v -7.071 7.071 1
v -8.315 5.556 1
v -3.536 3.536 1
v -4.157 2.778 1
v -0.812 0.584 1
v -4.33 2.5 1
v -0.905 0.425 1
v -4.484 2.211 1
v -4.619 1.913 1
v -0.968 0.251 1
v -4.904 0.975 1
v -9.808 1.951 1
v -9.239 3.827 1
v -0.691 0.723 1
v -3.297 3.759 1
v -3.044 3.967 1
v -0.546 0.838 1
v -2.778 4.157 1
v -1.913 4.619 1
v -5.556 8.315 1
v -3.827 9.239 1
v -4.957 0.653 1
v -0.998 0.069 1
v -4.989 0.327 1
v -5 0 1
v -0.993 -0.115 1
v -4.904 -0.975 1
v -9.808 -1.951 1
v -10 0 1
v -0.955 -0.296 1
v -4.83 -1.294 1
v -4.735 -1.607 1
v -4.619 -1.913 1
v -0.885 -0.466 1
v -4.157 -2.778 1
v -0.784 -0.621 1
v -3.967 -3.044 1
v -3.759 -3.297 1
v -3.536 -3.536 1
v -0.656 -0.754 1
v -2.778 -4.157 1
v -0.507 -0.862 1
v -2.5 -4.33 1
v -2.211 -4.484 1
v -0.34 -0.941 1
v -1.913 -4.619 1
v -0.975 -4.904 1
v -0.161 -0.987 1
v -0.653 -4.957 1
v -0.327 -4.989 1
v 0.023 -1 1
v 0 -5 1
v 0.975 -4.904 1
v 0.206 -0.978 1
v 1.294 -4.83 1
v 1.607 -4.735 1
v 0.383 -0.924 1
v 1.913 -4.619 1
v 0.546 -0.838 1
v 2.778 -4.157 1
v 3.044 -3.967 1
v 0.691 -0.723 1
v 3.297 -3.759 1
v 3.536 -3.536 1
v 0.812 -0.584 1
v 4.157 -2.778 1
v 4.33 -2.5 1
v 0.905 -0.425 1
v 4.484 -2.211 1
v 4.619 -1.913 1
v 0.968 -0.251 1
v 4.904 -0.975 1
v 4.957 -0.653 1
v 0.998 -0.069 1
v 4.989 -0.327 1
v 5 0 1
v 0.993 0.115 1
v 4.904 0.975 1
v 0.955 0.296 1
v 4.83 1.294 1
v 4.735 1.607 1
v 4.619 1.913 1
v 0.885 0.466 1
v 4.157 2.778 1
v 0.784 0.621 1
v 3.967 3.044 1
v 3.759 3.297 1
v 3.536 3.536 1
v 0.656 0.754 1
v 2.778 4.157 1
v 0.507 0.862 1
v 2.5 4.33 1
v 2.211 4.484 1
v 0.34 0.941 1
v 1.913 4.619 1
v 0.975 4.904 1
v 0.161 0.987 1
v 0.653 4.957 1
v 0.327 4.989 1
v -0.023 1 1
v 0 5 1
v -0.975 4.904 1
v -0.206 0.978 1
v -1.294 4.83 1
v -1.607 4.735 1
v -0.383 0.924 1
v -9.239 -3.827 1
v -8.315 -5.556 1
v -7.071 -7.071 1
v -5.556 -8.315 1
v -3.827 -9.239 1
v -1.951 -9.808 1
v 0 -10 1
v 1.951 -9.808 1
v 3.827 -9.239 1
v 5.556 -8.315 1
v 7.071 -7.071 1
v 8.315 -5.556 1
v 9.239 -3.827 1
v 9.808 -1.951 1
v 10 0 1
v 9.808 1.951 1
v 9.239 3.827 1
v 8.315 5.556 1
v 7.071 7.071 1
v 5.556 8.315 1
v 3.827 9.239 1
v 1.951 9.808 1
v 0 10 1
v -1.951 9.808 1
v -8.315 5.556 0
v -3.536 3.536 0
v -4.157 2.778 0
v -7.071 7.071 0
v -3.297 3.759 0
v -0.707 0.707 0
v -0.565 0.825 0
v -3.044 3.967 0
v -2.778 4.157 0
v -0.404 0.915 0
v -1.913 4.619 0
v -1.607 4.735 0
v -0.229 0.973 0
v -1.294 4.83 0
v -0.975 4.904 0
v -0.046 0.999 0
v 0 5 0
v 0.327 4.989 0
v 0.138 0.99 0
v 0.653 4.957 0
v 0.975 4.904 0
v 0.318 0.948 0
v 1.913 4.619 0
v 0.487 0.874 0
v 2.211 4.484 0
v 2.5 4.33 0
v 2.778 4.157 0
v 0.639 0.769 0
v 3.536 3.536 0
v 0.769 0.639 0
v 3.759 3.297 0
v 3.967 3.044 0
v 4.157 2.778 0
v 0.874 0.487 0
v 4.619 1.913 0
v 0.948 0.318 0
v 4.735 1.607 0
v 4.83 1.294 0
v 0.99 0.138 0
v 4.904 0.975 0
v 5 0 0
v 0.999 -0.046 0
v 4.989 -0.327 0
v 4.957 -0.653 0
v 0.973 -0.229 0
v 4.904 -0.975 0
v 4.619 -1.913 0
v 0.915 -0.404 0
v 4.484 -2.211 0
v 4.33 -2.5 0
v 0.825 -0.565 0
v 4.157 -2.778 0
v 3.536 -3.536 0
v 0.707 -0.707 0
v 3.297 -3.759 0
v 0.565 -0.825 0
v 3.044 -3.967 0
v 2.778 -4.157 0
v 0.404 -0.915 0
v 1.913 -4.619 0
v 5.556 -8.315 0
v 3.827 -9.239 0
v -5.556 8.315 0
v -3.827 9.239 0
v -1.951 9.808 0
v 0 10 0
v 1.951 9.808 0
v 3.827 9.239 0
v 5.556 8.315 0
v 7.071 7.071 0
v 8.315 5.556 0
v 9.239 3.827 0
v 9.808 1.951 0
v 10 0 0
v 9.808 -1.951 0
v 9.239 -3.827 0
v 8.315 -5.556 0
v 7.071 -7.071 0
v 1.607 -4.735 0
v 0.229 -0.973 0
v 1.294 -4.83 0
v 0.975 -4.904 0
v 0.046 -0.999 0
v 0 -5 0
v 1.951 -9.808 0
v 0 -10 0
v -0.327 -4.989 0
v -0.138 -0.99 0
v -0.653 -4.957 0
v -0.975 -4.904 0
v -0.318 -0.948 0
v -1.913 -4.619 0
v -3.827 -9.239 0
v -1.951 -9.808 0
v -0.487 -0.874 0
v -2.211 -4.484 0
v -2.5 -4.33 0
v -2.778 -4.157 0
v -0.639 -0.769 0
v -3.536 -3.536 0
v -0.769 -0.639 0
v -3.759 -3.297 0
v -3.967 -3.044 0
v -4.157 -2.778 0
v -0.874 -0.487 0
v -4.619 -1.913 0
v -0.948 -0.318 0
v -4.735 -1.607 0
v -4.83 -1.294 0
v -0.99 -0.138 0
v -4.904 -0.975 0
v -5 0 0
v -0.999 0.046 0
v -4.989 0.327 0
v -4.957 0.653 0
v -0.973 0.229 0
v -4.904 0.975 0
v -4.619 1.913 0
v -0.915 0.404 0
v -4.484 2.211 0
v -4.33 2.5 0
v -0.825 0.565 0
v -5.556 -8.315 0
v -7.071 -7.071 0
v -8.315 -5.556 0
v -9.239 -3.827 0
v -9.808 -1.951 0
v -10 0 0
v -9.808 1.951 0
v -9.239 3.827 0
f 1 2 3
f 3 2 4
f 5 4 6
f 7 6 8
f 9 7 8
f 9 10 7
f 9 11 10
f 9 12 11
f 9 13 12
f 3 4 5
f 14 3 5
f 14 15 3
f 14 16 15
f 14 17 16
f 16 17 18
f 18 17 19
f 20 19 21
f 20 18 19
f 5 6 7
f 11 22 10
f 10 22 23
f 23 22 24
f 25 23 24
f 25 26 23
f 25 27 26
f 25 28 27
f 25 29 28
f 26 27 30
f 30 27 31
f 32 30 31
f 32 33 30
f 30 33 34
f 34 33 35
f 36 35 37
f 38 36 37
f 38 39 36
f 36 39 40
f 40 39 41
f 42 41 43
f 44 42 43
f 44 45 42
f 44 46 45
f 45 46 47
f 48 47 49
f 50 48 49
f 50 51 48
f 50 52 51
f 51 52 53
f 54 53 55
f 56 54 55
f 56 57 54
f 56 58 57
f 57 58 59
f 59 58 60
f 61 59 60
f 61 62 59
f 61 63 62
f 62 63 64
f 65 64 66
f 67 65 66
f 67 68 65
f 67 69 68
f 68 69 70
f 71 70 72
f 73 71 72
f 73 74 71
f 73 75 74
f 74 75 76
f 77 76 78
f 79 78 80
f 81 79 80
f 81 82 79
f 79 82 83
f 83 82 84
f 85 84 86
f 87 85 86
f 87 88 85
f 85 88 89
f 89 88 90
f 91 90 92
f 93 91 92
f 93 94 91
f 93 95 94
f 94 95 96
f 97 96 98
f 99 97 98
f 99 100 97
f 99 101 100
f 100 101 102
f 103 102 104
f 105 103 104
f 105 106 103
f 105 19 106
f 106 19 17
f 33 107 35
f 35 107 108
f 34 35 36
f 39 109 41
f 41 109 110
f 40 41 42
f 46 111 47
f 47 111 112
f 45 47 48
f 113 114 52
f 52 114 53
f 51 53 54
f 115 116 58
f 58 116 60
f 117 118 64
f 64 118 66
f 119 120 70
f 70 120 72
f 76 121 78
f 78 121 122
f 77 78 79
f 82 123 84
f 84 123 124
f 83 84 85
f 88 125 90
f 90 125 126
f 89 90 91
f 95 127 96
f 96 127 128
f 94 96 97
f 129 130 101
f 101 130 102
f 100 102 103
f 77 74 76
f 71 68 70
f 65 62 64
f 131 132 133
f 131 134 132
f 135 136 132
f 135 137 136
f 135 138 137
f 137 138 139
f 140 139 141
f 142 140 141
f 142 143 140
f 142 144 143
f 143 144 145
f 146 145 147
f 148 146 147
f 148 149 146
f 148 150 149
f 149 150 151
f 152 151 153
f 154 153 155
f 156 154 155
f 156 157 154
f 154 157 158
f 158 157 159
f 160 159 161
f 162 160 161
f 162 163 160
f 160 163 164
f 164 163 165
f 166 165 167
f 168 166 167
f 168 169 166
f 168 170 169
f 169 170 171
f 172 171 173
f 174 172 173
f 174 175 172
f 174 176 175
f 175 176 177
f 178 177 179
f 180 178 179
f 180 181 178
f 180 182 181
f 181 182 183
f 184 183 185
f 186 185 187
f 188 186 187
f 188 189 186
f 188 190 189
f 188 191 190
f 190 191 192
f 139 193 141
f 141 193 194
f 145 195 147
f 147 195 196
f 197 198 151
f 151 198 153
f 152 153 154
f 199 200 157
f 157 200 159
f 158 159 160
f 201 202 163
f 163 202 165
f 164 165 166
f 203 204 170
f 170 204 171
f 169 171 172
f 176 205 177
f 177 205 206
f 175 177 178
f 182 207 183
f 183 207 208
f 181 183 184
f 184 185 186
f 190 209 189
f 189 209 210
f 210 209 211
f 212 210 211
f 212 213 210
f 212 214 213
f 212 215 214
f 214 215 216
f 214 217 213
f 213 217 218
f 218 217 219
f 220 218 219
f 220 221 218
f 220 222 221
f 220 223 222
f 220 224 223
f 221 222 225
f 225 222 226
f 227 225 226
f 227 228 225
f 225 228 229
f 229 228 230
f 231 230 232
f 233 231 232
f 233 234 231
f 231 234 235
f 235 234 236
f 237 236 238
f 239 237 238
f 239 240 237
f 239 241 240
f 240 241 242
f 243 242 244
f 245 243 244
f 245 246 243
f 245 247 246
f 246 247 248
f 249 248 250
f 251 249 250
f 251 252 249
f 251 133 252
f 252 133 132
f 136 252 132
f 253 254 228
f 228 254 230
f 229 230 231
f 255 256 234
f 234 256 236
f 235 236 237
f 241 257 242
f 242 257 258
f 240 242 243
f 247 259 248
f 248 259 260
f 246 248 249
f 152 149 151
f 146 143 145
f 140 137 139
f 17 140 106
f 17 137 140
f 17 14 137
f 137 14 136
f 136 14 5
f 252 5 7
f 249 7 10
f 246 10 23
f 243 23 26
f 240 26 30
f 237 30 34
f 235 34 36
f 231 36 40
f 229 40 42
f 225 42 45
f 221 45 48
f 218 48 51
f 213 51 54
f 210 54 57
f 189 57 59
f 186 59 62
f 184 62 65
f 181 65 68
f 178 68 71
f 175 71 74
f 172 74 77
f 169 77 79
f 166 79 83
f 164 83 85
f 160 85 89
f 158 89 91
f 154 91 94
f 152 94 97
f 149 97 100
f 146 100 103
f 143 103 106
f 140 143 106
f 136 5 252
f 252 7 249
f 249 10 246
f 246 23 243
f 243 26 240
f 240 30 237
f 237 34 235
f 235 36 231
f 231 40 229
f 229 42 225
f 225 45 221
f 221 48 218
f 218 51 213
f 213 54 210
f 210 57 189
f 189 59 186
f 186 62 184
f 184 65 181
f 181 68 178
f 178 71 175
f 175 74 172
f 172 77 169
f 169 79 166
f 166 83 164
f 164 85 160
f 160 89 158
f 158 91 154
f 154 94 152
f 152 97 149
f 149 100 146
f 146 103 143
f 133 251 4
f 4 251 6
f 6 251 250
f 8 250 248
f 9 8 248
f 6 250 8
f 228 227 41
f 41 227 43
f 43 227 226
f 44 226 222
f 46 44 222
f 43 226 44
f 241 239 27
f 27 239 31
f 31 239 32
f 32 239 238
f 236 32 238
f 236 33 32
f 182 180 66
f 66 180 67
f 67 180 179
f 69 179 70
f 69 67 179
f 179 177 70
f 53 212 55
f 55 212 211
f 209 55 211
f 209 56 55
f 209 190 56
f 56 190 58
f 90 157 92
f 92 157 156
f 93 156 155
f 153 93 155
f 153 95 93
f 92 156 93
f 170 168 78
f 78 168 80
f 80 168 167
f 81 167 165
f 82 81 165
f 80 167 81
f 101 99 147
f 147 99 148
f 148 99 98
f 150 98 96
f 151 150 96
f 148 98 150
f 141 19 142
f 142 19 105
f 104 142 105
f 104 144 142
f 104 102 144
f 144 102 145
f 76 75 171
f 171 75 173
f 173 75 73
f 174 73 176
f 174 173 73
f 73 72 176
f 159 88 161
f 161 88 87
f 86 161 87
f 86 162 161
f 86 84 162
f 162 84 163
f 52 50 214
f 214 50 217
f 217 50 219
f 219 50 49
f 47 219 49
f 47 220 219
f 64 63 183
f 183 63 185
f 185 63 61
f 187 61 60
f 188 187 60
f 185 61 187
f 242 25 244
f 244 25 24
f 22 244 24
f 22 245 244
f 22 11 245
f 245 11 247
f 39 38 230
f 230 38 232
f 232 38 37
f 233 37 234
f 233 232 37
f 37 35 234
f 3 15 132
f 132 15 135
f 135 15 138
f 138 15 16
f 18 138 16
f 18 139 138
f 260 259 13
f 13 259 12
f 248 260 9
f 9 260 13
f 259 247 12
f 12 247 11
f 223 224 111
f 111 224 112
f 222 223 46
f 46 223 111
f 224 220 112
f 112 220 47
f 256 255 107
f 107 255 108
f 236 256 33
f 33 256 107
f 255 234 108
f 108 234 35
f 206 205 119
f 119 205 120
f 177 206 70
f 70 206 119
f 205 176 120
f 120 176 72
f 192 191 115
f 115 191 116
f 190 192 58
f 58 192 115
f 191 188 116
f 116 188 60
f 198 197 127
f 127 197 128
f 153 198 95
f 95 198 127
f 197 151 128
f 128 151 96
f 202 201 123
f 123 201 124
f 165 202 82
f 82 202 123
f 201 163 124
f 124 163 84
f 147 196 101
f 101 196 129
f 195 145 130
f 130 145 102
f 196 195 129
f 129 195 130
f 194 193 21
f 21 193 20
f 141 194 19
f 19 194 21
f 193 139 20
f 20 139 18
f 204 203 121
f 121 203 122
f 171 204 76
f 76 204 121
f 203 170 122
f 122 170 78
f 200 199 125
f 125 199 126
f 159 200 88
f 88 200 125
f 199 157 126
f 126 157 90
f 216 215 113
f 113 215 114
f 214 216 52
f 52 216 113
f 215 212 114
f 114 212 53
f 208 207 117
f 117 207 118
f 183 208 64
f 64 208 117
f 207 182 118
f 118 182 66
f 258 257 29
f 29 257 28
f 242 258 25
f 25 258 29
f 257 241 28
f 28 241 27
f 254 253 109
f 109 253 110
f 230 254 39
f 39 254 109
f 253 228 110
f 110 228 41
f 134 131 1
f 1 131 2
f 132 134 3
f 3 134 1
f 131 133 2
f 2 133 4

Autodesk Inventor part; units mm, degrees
ref_plane "YZ Plane" through (0, 0, 0) normal (1, 0, 0) x (0, 1, 0)
ref_plane "XZ Plane" through (0, 0, 0) normal (0, 1, 0) x (-1, 0, 0)
ref_plane "XY Plane" through (0, 0, 0) normal (0, 0, 1) x (1, 0, 0)
sketch "Sketch1" plane through (0, 0, 0) normal (0, 0, 1) x (1, 0, 0)
  circle A0 centre (0, 0) radius 1
  circle A1 centre (0, 0) radius 5
  line L0 (1.9509, 9.8079) -> (3.8268, 9.2388)
  line L1 (5.5557, 8.3147) -> (7.0711, 7.0711)
  line L2 (8.3147, 5.5557) -> (9.2388, 3.8268)
  line L3 (9.8079, 1.9509) -> (10, 0)
  line L4 (9.8079, -1.9509) -> (9.2388, -3.8268)
  line L5 (8.3147, -5.5557) -> (7.0711, -7.0711)
  line L6 (5.5557, -8.3147) -> (3.8268, -9.2388)
  line L7 (1.9509, -9.8079) -> (0, -10)
  line L8 (-1.9509, -9.8079) -> (-3.8268, -9.2388)
  line L9 (-5.5557, -8.3147) -> (-7.0711, -7.0711)
  line L10 (-8.3147, -5.5557) -> (-9.2388, -3.8268)
  line L11 (-9.8079, -1.9509) -> (-10, 0)
  line L12 (-9.8079, 1.9509) -> (-9.2388, 3.8268)
  line L13 (-8.3147, 5.5557) -> (-7.0711, 7.0711)
  line L14 (-5.5557, 8.3147) -> (-3.8268, 9.2388)
  line L15 (-1.9509, 9.8079) -> (0, 10)
  line L16 (-3.8268, 9.2388) -> (-1.9134, 4.6194)
  line L17 (-5.5557, 8.3147) -> (-2.7779, 4.1573)
  line L18 (-9.2388, -3.8268) -> (-4.6194, -1.9134)
  line L19 (-8.3147, -5.5557) -> (-4.1573, -2.7779)
  line L20 (-7.0711, -7.0711) -> (-3.5355, -3.5355)
  line L21 (-5.5557, -8.3147) -> (-2.7779, -4.1573)
  line L22 (-1.9509, -9.8079) -> (-0.9755, -4.9039)
  line L23 (-3.8268, -9.2388) -> (-1.9134, -4.6194)
  line L24 (0, -5) -> (0, -10)
  line L25 (0.9755, -4.9039) -> (1.9509, -9.8079)
  line L26 (-0.3827, 0.9239) -> (0.3827, -0.9239)
  line L27 (1.9134, -4.6194) -> (3.8268, -9.2388)
  line L28 (-0.5556, 0.8315) -> (0.5556, -0.8315)
  line L29 (2.7779, -4.1573) -> (5.5557, -8.3147)
  line L30 (3.5355, -3.5355) -> (7.0711, -7.0711)
  line L31 (4.1573, -2.7779) -> (8.3147, -5.5557)
  line L32 (4.6194, -1.9134) -> (9.2388, -3.8268)
  line L33 (4.9039, -0.9755) -> (9.8079, -1.9509)
  line L34 (5, 0) -> (10, 0)
  line L35 (4.9039, 0.9755) -> (9.8079, 1.9509)
  line L36 (-0.9239, -0.3827) -> (0.9239, 0.3827)
  line L37 (4.6194, 1.9134) -> (9.2388, 3.8268)
  line L38 (-0.8315, -0.5556) -> (0.8315, 0.5556)
  line L39 (4.1573, 2.7779) -> (8.3147, 5.5557)
  line L40 (-0.7071, -0.7071) -> (0.7071, 0.7071)
  line L41 (3.5355, 3.5355) -> (7.0711, 7.0711)
  line L42 (-0.5556, -0.8315) -> (0.5556, 0.8315)
  line L43 (2.7779, 4.1573) -> (5.5557, 8.3147)
  line L44 (-0.3827, -0.9239) -> (0.3827, 0.9239)
  line L45 (1.9134, 4.6194) -> (3.8268, 9.2388)
  line L46 (-0.1951, -0.9808) -> (0.1951, 0.9808)
  line L47 (0.9755, 4.9039) -> (1.9509, 9.8079)
  line L48 (0, 10) -> (0, 5)
  line L49 (0, 1) -> (0, -1)
  line L50 (-1.9509, 9.8079) -> (-0.9755, 4.9039)
  line L51 (-0.1951, 0.9808) -> (0.1951, -0.9808)
  line L52 (-7.0711, 7.0711) -> (-3.5355, 3.5355)
  line L53 (-0.7071, 0.7071) -> (0.7071, -0.7071)
  line L54 (-8.3147, 5.5557) -> (-4.1573, 2.7779)
  line L55 (-0.8315, 0.5556) -> (0.8315, -0.5556)
  line L56 (-9.2388, 3.8268) -> (-4.6194, 1.9134)
  line L57 (-0.9239, 0.3827) -> (0.9239, -0.3827)
  line L58 (-0.9808, 0.1951) -> (0.9808, -0.1951)
  line L59 (-10, 0) -> (-5, 0)
  line L60 (-1, 0) -> (1, 0)
  line L61 (-9.8079, -1.9509) -> (-4.9039, -0.9755)
  line L62 (-0.9808, -0.1951) -> (0.9808, 0.1951)
  line L63 (-9.8079, 1.9509) -> (-4.9039, 0.9755)
  line L64 (-0.9808, 0.1951) -> (0, 0)
  dimension "d1" = 2
extrude "Extrusion2" add sketch "Sketch1" along normal blind 1
properties part number "encoder"
